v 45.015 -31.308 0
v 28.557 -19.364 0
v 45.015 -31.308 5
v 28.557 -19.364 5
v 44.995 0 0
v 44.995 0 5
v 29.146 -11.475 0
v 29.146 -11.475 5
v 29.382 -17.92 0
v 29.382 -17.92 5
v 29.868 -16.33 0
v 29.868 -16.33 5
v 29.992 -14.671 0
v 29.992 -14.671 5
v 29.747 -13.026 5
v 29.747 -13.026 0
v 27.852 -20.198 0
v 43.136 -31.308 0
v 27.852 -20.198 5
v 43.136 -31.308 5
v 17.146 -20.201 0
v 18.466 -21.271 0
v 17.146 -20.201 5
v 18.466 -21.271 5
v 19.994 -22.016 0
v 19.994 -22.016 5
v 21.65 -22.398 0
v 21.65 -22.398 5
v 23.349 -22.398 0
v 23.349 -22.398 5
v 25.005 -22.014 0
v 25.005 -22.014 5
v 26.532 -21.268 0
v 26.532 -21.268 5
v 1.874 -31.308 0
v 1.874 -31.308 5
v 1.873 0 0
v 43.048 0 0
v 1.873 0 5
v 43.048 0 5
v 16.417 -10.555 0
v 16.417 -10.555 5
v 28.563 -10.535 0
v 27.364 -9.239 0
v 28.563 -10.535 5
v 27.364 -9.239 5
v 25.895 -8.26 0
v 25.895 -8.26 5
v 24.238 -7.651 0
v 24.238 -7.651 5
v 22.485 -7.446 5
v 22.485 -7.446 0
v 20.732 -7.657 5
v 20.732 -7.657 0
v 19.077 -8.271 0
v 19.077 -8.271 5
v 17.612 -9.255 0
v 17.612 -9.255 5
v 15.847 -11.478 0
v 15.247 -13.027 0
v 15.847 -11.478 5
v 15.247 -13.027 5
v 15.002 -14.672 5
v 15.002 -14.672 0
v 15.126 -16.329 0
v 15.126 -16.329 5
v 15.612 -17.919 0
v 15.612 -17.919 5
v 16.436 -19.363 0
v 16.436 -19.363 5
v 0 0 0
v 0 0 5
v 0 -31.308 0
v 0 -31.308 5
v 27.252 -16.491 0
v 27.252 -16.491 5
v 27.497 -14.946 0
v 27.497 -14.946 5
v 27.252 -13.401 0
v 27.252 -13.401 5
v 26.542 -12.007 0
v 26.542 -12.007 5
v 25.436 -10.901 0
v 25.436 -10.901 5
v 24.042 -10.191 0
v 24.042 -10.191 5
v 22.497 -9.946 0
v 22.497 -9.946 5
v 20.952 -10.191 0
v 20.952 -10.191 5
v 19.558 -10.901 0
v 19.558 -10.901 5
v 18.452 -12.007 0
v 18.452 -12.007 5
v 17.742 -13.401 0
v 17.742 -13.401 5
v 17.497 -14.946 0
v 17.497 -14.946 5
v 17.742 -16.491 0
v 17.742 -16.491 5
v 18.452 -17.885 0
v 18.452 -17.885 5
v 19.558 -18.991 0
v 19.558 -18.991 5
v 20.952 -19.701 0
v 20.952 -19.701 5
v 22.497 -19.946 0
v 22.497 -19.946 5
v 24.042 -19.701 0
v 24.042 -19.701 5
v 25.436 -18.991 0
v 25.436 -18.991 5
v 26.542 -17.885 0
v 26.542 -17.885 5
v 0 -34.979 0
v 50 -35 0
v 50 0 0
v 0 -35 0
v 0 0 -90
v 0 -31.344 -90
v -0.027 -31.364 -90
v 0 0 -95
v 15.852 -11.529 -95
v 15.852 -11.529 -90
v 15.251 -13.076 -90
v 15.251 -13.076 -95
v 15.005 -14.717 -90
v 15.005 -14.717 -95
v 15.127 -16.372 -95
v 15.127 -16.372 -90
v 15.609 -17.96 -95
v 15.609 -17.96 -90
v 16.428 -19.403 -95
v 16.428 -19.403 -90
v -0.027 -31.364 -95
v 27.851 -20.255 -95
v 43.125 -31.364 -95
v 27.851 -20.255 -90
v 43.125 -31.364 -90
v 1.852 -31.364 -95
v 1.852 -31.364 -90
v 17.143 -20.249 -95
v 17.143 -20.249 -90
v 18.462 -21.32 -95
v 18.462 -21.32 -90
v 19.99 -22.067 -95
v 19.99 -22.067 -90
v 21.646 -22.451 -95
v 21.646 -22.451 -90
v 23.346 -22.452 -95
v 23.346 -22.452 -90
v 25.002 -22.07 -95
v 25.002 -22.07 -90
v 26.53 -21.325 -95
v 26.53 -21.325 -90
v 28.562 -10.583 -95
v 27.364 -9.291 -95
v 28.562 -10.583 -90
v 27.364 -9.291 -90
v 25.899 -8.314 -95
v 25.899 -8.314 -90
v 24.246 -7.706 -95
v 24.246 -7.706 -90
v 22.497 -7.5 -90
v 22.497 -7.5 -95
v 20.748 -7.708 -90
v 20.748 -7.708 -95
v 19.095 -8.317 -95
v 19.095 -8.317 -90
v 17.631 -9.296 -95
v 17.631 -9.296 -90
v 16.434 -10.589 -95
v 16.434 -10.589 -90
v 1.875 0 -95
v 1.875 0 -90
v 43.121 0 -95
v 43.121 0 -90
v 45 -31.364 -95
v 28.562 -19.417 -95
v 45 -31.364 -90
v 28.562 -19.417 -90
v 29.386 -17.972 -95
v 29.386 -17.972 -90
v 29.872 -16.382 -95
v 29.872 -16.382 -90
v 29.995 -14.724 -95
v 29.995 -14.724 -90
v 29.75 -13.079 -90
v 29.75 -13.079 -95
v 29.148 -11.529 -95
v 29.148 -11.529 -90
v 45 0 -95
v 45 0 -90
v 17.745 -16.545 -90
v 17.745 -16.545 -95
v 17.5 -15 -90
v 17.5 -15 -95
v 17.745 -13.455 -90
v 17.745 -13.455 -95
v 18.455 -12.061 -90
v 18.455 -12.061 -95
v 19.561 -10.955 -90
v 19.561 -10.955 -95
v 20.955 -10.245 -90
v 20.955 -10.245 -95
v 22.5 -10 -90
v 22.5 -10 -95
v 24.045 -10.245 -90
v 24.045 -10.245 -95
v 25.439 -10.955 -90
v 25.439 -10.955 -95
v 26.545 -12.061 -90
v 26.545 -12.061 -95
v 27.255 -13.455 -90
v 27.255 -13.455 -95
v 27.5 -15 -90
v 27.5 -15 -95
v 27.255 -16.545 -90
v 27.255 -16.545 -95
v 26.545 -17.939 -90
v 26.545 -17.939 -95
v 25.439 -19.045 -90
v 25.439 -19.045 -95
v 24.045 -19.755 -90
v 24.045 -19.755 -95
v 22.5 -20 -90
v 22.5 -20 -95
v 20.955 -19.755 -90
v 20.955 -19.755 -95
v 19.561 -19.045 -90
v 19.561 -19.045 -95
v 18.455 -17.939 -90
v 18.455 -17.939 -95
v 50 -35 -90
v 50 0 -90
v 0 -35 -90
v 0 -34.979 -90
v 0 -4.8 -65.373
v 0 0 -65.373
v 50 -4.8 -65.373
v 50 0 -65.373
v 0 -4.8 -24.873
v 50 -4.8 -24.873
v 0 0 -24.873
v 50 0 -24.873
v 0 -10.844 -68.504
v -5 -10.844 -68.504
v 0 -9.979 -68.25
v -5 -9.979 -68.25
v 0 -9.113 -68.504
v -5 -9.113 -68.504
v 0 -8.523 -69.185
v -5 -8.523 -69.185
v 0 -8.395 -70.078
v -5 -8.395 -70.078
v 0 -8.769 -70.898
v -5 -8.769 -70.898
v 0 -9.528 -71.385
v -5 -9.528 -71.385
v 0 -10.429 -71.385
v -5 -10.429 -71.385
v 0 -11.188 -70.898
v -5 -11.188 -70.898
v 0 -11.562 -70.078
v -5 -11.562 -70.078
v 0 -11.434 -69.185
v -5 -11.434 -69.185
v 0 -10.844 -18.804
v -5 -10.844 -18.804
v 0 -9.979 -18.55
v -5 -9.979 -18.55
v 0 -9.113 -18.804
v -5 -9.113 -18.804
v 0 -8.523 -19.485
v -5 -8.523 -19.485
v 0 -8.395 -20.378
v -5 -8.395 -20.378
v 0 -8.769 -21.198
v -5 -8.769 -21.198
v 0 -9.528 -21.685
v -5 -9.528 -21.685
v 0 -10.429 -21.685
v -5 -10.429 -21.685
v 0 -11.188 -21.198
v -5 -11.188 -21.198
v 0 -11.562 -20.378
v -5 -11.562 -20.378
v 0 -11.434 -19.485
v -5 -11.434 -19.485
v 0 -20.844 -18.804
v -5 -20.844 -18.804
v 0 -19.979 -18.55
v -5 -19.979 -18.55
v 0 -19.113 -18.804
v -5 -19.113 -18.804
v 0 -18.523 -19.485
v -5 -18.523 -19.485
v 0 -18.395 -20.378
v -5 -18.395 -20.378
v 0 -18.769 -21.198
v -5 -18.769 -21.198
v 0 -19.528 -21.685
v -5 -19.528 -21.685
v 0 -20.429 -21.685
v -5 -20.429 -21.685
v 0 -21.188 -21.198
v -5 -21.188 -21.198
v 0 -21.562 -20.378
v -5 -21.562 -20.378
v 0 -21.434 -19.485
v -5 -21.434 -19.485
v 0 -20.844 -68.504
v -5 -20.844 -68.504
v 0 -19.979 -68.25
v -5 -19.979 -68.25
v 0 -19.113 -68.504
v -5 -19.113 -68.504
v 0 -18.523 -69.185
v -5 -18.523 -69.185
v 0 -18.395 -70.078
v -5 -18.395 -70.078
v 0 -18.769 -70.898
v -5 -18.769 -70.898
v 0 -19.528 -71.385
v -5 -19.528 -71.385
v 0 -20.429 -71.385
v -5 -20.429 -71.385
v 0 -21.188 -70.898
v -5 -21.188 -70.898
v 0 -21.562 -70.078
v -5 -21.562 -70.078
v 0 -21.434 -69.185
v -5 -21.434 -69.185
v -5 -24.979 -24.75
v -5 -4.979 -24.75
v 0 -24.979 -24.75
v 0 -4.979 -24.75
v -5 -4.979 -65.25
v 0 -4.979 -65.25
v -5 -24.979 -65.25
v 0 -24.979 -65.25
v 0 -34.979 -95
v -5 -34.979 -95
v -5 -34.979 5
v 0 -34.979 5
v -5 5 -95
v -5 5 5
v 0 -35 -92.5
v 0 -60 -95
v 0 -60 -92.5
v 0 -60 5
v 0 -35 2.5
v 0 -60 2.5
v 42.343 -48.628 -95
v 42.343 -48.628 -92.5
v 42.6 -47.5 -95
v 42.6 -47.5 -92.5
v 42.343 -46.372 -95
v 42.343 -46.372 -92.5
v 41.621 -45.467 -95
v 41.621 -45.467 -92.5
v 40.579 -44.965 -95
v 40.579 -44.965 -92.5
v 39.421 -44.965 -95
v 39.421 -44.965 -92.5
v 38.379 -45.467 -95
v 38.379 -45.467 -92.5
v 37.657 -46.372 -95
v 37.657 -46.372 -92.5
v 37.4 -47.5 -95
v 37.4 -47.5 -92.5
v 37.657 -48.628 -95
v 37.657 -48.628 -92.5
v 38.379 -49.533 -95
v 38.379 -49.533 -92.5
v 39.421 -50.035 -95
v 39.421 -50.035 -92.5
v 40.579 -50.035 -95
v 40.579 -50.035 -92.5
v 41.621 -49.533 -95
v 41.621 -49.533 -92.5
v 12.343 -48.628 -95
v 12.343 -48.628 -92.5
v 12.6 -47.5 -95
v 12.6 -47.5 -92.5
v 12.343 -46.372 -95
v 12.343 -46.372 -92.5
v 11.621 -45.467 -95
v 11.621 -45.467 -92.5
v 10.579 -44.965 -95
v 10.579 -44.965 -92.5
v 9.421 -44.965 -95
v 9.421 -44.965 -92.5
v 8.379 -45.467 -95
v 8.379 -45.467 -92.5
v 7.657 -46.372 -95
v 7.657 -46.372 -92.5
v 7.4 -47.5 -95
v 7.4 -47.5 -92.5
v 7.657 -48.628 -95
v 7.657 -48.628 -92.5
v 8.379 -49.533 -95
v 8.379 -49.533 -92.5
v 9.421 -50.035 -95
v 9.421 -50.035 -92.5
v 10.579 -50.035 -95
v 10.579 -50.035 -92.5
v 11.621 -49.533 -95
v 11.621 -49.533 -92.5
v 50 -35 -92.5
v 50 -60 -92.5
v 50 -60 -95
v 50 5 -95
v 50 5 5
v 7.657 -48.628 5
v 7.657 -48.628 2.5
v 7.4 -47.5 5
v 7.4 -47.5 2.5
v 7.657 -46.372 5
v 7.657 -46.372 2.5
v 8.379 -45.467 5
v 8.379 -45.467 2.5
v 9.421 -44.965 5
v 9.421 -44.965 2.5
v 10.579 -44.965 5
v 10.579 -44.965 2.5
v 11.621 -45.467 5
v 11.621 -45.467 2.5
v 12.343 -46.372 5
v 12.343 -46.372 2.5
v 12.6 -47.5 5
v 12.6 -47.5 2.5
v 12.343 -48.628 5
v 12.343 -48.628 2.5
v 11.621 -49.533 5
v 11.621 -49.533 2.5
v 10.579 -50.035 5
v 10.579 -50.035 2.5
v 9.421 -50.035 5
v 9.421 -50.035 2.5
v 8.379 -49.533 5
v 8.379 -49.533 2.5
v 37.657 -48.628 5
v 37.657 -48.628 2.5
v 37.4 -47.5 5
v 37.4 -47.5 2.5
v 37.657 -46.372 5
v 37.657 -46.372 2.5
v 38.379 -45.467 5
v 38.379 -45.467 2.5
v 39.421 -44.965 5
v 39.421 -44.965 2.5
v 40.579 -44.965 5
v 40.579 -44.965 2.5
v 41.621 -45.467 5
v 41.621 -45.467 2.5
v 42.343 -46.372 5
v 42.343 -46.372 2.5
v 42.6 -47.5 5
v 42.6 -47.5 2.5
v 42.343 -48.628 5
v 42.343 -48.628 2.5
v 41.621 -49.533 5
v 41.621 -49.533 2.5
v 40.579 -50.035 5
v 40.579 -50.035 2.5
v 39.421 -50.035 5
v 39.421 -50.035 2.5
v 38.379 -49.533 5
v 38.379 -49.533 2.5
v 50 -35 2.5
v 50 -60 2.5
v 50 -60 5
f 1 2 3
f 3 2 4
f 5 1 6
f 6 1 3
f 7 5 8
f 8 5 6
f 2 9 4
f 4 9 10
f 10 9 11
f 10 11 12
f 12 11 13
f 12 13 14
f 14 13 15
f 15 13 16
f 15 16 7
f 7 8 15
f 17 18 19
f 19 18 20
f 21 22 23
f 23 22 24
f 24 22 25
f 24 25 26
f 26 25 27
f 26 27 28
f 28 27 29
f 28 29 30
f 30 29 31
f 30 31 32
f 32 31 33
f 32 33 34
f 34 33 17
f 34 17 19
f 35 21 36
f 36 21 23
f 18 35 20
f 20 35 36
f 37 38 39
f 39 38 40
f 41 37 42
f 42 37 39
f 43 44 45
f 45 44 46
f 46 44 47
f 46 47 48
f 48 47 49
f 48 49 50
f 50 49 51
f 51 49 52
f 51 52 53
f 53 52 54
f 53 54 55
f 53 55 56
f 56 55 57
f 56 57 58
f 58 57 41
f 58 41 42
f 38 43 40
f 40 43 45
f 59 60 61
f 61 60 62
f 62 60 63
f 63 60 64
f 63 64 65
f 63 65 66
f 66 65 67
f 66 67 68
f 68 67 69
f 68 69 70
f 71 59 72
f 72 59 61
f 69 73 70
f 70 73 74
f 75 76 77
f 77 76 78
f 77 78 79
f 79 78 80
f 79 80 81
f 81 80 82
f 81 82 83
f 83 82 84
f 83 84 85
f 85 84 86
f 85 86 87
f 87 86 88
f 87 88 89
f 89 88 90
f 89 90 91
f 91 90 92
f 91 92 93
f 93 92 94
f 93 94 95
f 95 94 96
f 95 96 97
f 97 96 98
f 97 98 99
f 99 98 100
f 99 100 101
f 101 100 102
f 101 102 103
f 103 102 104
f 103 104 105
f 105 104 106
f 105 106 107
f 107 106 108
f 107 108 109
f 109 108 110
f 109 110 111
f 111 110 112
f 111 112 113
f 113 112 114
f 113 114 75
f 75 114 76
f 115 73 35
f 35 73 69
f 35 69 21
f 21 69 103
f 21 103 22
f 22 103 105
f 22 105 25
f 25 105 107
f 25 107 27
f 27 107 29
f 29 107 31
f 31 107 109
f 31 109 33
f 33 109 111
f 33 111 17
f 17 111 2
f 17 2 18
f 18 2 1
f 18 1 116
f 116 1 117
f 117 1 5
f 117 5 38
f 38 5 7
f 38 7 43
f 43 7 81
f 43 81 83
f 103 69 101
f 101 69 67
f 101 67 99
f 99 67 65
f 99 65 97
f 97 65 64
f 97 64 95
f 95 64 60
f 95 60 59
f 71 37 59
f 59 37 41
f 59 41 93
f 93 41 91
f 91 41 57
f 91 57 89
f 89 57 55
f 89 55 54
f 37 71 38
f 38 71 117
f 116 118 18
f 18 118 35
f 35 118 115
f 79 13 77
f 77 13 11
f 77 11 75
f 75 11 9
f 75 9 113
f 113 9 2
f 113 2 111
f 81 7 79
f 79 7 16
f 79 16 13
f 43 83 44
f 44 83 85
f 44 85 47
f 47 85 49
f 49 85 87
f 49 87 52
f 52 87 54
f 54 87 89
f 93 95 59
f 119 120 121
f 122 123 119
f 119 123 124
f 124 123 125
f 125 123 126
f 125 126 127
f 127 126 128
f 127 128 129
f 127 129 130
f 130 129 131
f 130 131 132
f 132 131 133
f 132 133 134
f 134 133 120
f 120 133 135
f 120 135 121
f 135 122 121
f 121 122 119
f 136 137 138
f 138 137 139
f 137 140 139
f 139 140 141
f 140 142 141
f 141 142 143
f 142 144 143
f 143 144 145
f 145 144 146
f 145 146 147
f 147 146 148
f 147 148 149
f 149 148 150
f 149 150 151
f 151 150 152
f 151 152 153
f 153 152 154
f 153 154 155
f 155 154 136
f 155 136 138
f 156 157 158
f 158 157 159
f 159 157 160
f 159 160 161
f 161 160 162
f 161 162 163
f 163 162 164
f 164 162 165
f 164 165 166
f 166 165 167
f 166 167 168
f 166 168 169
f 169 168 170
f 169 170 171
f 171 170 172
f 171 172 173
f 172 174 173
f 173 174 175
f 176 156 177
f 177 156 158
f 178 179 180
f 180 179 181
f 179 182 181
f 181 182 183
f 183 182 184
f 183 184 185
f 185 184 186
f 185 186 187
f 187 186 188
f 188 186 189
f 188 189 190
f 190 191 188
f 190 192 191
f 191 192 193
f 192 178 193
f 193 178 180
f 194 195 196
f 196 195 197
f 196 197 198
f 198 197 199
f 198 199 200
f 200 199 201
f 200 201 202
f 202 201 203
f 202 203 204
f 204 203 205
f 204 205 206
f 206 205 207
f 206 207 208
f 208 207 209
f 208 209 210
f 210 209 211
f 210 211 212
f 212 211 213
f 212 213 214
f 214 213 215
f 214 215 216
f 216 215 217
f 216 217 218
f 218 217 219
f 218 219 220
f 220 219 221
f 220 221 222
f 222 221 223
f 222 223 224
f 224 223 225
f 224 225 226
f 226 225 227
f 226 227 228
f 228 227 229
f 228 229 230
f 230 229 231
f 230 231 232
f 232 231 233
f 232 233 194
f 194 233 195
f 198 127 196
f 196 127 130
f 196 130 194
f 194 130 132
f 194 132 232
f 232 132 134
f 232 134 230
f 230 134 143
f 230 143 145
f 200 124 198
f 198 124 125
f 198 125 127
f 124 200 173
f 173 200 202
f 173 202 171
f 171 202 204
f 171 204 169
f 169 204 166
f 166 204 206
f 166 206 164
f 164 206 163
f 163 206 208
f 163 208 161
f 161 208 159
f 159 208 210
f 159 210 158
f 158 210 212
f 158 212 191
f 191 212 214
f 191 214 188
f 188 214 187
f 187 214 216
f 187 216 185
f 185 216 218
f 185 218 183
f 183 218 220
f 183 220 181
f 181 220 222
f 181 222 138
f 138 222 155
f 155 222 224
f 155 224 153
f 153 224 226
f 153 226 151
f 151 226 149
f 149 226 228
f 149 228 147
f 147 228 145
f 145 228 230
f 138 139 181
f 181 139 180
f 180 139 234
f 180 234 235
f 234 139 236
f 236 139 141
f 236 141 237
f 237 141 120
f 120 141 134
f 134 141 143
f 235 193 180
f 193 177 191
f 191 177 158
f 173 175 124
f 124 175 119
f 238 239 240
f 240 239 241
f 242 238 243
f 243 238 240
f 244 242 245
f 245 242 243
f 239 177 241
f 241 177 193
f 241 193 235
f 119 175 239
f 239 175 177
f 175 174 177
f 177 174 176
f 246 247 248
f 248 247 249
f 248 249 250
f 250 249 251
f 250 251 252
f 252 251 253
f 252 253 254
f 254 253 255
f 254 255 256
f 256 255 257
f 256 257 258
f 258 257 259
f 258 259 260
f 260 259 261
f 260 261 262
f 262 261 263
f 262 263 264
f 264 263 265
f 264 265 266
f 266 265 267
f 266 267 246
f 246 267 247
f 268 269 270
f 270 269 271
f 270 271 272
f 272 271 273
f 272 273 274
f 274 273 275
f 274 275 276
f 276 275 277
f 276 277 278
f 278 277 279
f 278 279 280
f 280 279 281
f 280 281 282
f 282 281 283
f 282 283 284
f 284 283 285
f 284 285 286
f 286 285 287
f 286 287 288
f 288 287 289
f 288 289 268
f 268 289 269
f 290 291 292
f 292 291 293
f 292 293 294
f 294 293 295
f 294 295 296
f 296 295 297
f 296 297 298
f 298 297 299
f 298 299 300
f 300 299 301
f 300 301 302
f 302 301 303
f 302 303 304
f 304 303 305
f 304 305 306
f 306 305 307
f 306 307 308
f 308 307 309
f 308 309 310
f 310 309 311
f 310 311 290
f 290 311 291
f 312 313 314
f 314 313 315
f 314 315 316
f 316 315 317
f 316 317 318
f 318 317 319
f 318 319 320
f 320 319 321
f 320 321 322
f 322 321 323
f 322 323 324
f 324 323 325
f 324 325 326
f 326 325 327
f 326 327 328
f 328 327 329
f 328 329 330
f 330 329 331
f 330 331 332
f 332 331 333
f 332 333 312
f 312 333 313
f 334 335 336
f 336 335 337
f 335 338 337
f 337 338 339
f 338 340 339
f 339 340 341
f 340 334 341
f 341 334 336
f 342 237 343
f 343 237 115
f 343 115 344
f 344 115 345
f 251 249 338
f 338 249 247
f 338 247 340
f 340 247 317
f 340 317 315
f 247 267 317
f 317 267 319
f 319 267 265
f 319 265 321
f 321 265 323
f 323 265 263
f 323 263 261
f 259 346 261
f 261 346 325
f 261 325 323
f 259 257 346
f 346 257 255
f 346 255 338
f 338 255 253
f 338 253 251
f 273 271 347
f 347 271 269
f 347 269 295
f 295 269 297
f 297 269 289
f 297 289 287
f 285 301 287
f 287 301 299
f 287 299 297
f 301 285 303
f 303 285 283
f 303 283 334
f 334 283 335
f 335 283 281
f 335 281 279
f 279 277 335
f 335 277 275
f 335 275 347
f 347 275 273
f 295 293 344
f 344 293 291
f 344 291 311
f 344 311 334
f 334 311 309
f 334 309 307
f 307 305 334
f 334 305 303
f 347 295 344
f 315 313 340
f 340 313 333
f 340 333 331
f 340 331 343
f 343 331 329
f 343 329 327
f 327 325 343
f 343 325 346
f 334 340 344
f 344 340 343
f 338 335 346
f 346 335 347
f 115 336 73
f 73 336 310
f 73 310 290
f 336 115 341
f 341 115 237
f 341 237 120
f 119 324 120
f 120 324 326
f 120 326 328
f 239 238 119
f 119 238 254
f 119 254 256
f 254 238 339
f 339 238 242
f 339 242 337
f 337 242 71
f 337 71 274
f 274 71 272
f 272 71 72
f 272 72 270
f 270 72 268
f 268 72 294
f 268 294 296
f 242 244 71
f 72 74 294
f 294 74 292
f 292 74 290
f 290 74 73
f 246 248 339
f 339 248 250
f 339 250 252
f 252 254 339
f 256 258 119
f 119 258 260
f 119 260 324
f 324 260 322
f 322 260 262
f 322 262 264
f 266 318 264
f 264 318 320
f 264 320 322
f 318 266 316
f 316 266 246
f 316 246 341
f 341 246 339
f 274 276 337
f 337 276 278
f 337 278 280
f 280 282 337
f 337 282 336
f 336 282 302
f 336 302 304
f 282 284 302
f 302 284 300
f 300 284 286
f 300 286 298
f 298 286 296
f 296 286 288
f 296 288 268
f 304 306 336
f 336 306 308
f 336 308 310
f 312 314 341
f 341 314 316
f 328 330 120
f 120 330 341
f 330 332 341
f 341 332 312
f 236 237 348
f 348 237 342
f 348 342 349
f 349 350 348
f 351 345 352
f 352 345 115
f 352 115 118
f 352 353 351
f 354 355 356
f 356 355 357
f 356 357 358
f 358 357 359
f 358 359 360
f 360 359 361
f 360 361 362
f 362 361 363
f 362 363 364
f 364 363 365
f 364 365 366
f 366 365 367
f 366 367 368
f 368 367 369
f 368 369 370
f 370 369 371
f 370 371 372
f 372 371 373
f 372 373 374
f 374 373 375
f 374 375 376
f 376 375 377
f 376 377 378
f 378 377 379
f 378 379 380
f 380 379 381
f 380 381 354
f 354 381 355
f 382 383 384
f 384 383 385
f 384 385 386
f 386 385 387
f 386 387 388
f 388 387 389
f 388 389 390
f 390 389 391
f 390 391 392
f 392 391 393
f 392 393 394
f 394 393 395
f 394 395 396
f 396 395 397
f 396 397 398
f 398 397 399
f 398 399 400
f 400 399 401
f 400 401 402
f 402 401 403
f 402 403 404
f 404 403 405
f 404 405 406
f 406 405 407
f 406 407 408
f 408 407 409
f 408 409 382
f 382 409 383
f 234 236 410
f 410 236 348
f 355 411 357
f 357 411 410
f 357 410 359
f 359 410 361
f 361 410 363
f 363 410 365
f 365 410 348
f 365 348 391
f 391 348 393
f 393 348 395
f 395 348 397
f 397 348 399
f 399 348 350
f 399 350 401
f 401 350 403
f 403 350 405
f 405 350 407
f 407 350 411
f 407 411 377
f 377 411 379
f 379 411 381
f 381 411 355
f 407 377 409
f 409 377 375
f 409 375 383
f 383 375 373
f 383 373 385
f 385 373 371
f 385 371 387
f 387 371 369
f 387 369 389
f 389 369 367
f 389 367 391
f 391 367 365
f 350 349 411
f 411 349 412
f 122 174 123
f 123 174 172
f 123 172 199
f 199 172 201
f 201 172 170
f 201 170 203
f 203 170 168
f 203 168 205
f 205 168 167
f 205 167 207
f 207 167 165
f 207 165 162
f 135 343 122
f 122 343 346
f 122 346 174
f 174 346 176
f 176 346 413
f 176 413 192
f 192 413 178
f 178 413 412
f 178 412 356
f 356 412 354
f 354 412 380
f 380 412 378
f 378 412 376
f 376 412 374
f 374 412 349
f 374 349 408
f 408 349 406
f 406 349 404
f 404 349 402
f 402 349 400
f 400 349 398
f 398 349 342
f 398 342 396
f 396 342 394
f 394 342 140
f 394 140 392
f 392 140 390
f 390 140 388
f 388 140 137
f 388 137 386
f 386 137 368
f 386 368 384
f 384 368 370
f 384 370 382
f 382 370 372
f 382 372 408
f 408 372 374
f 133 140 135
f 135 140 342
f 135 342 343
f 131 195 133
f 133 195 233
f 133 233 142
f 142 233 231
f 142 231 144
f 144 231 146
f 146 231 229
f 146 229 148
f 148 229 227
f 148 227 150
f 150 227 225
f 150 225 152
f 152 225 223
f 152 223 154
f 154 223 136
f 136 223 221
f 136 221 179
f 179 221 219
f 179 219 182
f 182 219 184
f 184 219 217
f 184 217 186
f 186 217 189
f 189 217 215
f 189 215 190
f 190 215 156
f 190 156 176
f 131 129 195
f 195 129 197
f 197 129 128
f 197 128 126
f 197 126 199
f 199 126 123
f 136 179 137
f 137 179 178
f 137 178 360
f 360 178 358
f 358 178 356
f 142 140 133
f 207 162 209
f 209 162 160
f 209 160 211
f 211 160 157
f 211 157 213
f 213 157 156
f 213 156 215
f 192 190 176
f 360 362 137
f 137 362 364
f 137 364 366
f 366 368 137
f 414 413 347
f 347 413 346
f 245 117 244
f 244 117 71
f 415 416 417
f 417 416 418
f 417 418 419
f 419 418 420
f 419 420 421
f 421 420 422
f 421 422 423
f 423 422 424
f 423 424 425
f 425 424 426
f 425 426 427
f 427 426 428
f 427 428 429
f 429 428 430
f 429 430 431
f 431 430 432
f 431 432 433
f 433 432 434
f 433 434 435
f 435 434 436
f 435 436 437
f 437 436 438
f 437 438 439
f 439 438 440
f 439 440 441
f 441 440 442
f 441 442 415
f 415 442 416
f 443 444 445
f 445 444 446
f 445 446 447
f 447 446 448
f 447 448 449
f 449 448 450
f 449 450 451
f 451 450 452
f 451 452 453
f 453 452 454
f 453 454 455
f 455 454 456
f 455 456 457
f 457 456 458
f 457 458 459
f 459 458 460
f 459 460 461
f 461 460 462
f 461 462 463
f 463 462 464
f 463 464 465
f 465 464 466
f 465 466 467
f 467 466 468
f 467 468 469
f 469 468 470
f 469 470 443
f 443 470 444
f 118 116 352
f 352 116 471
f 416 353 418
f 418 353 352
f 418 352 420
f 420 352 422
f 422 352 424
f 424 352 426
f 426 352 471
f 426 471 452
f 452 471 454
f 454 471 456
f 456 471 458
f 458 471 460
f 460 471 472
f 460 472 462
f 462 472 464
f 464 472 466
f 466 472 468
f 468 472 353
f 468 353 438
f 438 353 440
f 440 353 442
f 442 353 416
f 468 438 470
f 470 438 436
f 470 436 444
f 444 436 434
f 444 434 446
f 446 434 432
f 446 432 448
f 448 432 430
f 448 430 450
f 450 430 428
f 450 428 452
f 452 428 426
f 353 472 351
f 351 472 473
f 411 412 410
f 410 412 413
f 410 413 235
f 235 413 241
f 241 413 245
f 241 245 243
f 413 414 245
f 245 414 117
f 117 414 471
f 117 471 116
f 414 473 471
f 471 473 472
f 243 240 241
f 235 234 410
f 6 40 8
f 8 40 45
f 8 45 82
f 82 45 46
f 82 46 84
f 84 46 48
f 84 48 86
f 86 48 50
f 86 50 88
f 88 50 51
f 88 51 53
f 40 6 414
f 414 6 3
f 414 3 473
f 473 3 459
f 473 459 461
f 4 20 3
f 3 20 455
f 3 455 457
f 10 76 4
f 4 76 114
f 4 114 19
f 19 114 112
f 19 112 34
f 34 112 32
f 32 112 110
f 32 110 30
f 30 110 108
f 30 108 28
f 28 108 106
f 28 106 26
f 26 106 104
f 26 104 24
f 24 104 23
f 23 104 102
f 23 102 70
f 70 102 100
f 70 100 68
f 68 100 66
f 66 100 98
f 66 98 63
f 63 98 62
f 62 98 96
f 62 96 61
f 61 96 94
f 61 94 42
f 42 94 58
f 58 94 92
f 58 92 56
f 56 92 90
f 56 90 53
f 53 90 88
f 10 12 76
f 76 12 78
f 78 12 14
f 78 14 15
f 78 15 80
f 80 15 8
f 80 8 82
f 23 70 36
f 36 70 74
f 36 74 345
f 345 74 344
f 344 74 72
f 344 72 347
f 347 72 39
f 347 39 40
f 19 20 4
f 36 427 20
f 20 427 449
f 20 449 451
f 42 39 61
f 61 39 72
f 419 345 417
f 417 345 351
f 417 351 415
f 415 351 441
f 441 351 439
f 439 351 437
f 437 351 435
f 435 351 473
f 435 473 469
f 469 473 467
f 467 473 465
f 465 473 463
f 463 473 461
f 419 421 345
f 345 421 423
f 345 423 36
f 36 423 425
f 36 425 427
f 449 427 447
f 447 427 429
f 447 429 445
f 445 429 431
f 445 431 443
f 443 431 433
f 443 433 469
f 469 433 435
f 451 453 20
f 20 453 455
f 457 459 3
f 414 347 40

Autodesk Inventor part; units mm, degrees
ref_plane "YZ Plane" through (0, 0, 0) normal (1, 0, 0) x (0, 1, 0)
ref_plane "XZ Plane" through (0, 0, 0) normal (0, 1, 0) x (-1, 0, 0)
ref_plane "XY Plane" through (0, 0, 0) normal (0, 0, 1) x (1, 0, 0)
sketch "Esquisse1" plane through (0, 0, 0) normal (0, 0, 1) x (1, 0, 0)
  line L0 (0, 0) -> (50, 0)
  line L1 (50, 0) -> (50, -60)
  line L2 (50, -60) -> (0, -60)
  line L3 (0, -60) -> (0, 0)
  dimension "d0" = 50
  dimension "d1" = 60
extrude "Extrusion1" add sketch "Esquisse1" along normal blind 5
sketch "Esquisse2" plane through (0, 0, 0) normal (0, 0, -1) x (-1, 0, 0)
  line L0 (0, -60) -> (-50, -60)
  line L1 (-50, -60) -> (-50, -35)
  line L2 (-50, -35) -> (0, -35)
  line L3 (0, -35) -> (0, -60)
  dimension "d4" = 25
extrude "Extrusion2" cut sketch "Esquisse2" against normal blind 2.5
sketch "Esquisse4" plane through (0, 0, 2.5) normal (0, 0, -1) x (-1, 0, 0)
  circle A0 centre (-10, -47.5) radius 2.6
  circle A1 centre (-40, -47.5) radius 2.6
  line L0 (-50, -60) -> (-50, -35) projected
  line L1 (0, -35) -> (0, -60) projected
  line L2 (0, -60) -> (-50, -60) projected
  point P0 (0, 0)
  dimension "d7" = 10
  dimension "d8" = 10
  dimension "d9" = 5.2
  dimension "d10" = 5.2
  dimension "d11" = 12.5
  dimension "d12" = 12.5
extrude "Extrusion3" cut sketch "Esquisse4" against normal blind 2.5
sketch "Esquisse5" plane through (0, 0, 0) normal (0, 1, 0) x (1, 0, 0)
  line L0 (0, -5) -> (50, -5)
  line L1 (50, -5) -> (50, 95)
  line L2 (50, 95) -> (0, 95)
  line L3 (0, 95) -> (0, -5)
  point P0 (0, 0)
  dimension "d15" = 50
  dimension "d16" = 100
extrude "Extrusion4" add sketch "Esquisse5" along normal blind 5
sketch "Esquisse6" plane through (0, 0, 0) normal (0, -1, 0) x (1, 0, 0)
  line L0 (50, -95) -> (0, -95)
  line L1 (0, -95) -> (0, -90)
  line L2 (0, -90) -> (50, -90)
  line L3 (50, -90) -> (50, -95)
  dimension "d19" = 5
extrude "Extrusion5" add sketch "Esquisse6" along normal blind 60
sketch "Esquisse7" plane through (0, 0, -90) normal (0, 0, 1) x (1, 0, 0)
  line L0 (50, -60) -> (0, -60)
  line L1 (0, -60) -> (0, -35)
  line L2 (0, -35) -> (50, -35)
  line L3 (50, -35) -> (50, -60)
  point P0 (0, 0)
  dimension "d22" = 25
extrude "Extrusion6" cut sketch "Esquisse7" against normal blind 2.5
sketch "Esquisse8" plane through (0, 0, -92.5) normal (0, 0, 1) x (1, 0, 0)
  circle A0 centre (40, -47.5) radius 2.6
  circle A1 centre (10, -47.5) radius 2.6
  line L0 (50, -60) -> (0, -60) projected
  line L1 (0, -60) -> (0, -35) projected
  line L2 (50, -35) -> (50, -60) projected
  point P0 (0, 0)
  dimension "d25" = 5.2
  dimension "d26" = 5.2
  dimension "d27" = 12.5
  dimension "d28" = 12.5
  dimension "d29" = 10
  dimension "d30" = 10
extrude "Extrusion7" cut sketch "Esquisse8" against normal blind 2.5
sketch "Esquisse9" plane through (0, -60, 2.5) normal (-1, 0, 0) x (0, 0, 1)
  line L0 (2.5, 0) -> (2.5, 65) projected
  line L1 (2.5, 65) -> (-97.5, 65) projected
  line L2 (2.5, 25.0215) -> (-97.5, 25.0215)
  line L3 (-97.5, 25.0215) -> (-97.5, 65)
  line L4 (-97.5, 65) -> (2.5, 65)
  line L5 (2.5, 65) -> (2.5, 25.0215)
  point P0 (-2.5, 60)
extrude "Extrusion8" add sketch "Esquisse9" along normal blind 5
sketch "Esquisse10" plane through (-5, -60, 2.5) normal (-1, 0, 0) x (0, 0, 1)
  line L0 (-27.25, 35.0215) -> (-67.75, 35.0215)
  line L1 (-67.75, 35.0215) -> (-67.75, 55.0215)
  line L2 (-67.75, 55.0215) -> (-27.25, 55.0215)
  line L3 (-27.25, 55.0215) -> (-27.25, 35.0215)
  circle A0 centre (-22.65, 40.0215) radius 1.6
  circle A1 centre (-22.65, 50.0215) radius 1.6
  circle A2 centre (-72.35, 40.0215) radius 1.6
  circle A3 centre (-72.35, 50.0215) radius 1.6
  line L4 (2.5, 25.0215) -> (2.5, 65) projected
  line L5 (-97.5, 25.0215) -> (2.5, 25.0215) projected
  dimension "d35" = 20
  dimension "d36" = 40.5
  dimension "d37" = 3.2
  dimension "d38" = 3.2
  dimension "d39" = 3.2
  dimension "d40" = 3.2
  dimension "d41" = 10
  dimension "d42" = 5
  dimension "d43" = 4.6
  dimension "d44" = 4.6
  dimension "d45" = 5
  dimension "d46" = 5
  dimension "d47" = 4.6
  dimension "d48" = 4.6
  dimension "d49" = 29.75
  dimension "d50" = 10
extrude "Extrusion9" cut sketch "Esquisse10" against normal blind 5
sketch "Esquisse12" plane through (0, -60, 2.5) normal (1, 0, 0) x (0, 0, -1)
  line L0 (67.8734, 60) -> (27.3734, 60)
  line L1 (27.3734, 60) -> (27.3734, 55.2)
  line L2 (27.3734, 55.2) -> (67.8734, 55.2)
  line L3 (67.8734, 55.2) -> (67.8734, 60)
  point P0 (2.5, 60)
  dimension "d56" = 4.8
  dimension "d57" = 40.5
extrude "Extrusion11" add sketch "Esquisse12" along normal blind 50
sketch "Esquisse13" plane through (50, -60, -95) normal (0, 0, -1) x (-1, 0, 0)
  line L0 (55, 65) -> (55, 25.0215) construction
  line L1 (0, 65) -> (55, 65) construction
  line L2 (55, 25.0215) -> (0, 65) construction
  line L3 (0, 60) -> (0, 25) construction
  line L4 (55, 65) -> (0, 25) construction
  circle A0 centre (27.5, 45) radius 5
  circle A1 centre (27.5, 45) radius 7.5
  line L5 (50.0269, 28.6364) -> (50, 60)
  line L6 (50, 60) -> (5, 60)
  line L7 (5, 60) -> (5, 28.6364)
  line L8 (50.0269, 28.6364) -> (5, 28.6364)
  line L9 (50.0269, 28.6364) -> (33.5718, 40.5973)
  line L10 (32.8572, 39.7511) -> (48.1482, 28.6364)
  line L11 (5, 28.6364) -> (21.4385, 40.5832)
  line L12 (22.1491, 39.7448) -> (6.875, 28.6364)
  line L13 (5, 60) -> (20.8518, 48.4714)
  line L14 (6.8787, 60) -> (21.4385, 49.4168)
  line L15 (0, 60) -> (50, 60) projected
  line L16 (50, 60) -> (34.1482, 48.4714)
  line L17 (50, 60) -> (48.125, 60)
  line L18 (48.125, 60) -> (33.5655, 49.4113)
  dimension "d61" = 15
  dimension "d60" = 10
  dimension "d62" = 5
extrude "Extrusion12" cut sketch "Esquisse13" against normal blind 5 contours A0 | A1 L16 L5 L9 | A1 L14 L6 L18 | L10 L8 L12 A1 | A1 L11 L7 L13
sketch "Esquisse15" plane through (0, 0, 5) normal (0, 0, 1) x (1, 0, 0)
  line L0 (49.9941, 5.0518) -> (50.0216, -34.9407) construction
  line L1 (-5.0098, 4.9946) -> (49.9941, 5.0518) construction
  line L2 (50.0216, -34.9407) -> (-5.0098, 4.9946) construction
  line L3 (-5, 1.3813) -> (-5, -34.9439) construction
  line L4 (49.9941, 5.0518) -> (-5, -34.9439) construction
  circle A0 centre (22.4971, -14.9461) radius 5
  circle A1 centre (22.4971, -14.9461) radius 7.5
  line L5 (45.0151, -31.3076) -> (44.995, 0)
  line L6 (44.995, 0) -> (0, 0)
  line L7 (0, 0) -> (0, -31.3076)
  line L8 (45.0151, -31.3076) -> (0, -31.3076)
  line L9 (45.0151, -31.3076) -> (28.5574, -19.3645)
  line L10 (27.8517, -20.1975) -> (43.1363, -31.3076)
  line L11 (0, -31.3076) -> (16.4355, -19.3628)
  line L12 (17.1458, -20.2009) -> (1.8741, -31.3076)
  line L13 (0, 0) -> (15.8473, -11.4775)
  line L14 (1.8729, 0) -> (16.4172, -10.5546)
  line L15 (44.995, 0) -> (29.1456, -11.4751)
  line L16 (0, -34.9785) -> (0, 0) projected
  line L17 (43.0479, 0) -> (28.5626, -10.5348)
  line L18 (44.995, 0) -> (43.0479, 0)
  line L19 (0, 0) -> (50, 0) projected
  dimension "d73" = 15
  dimension "d72" = 10
  dimension "d74" = 5
  dimension "d77" = 0
extrude "Extrusion13" cut sketch "Esquisse15" against normal blind 10 contours A0 | A1 L15 L5 L9 | A1 L14 L6 L17 | L10 L8 L12 A1 | A1 L11 L7 L13
properties part number "Biceps2 v2" material "Plastique ABS"
